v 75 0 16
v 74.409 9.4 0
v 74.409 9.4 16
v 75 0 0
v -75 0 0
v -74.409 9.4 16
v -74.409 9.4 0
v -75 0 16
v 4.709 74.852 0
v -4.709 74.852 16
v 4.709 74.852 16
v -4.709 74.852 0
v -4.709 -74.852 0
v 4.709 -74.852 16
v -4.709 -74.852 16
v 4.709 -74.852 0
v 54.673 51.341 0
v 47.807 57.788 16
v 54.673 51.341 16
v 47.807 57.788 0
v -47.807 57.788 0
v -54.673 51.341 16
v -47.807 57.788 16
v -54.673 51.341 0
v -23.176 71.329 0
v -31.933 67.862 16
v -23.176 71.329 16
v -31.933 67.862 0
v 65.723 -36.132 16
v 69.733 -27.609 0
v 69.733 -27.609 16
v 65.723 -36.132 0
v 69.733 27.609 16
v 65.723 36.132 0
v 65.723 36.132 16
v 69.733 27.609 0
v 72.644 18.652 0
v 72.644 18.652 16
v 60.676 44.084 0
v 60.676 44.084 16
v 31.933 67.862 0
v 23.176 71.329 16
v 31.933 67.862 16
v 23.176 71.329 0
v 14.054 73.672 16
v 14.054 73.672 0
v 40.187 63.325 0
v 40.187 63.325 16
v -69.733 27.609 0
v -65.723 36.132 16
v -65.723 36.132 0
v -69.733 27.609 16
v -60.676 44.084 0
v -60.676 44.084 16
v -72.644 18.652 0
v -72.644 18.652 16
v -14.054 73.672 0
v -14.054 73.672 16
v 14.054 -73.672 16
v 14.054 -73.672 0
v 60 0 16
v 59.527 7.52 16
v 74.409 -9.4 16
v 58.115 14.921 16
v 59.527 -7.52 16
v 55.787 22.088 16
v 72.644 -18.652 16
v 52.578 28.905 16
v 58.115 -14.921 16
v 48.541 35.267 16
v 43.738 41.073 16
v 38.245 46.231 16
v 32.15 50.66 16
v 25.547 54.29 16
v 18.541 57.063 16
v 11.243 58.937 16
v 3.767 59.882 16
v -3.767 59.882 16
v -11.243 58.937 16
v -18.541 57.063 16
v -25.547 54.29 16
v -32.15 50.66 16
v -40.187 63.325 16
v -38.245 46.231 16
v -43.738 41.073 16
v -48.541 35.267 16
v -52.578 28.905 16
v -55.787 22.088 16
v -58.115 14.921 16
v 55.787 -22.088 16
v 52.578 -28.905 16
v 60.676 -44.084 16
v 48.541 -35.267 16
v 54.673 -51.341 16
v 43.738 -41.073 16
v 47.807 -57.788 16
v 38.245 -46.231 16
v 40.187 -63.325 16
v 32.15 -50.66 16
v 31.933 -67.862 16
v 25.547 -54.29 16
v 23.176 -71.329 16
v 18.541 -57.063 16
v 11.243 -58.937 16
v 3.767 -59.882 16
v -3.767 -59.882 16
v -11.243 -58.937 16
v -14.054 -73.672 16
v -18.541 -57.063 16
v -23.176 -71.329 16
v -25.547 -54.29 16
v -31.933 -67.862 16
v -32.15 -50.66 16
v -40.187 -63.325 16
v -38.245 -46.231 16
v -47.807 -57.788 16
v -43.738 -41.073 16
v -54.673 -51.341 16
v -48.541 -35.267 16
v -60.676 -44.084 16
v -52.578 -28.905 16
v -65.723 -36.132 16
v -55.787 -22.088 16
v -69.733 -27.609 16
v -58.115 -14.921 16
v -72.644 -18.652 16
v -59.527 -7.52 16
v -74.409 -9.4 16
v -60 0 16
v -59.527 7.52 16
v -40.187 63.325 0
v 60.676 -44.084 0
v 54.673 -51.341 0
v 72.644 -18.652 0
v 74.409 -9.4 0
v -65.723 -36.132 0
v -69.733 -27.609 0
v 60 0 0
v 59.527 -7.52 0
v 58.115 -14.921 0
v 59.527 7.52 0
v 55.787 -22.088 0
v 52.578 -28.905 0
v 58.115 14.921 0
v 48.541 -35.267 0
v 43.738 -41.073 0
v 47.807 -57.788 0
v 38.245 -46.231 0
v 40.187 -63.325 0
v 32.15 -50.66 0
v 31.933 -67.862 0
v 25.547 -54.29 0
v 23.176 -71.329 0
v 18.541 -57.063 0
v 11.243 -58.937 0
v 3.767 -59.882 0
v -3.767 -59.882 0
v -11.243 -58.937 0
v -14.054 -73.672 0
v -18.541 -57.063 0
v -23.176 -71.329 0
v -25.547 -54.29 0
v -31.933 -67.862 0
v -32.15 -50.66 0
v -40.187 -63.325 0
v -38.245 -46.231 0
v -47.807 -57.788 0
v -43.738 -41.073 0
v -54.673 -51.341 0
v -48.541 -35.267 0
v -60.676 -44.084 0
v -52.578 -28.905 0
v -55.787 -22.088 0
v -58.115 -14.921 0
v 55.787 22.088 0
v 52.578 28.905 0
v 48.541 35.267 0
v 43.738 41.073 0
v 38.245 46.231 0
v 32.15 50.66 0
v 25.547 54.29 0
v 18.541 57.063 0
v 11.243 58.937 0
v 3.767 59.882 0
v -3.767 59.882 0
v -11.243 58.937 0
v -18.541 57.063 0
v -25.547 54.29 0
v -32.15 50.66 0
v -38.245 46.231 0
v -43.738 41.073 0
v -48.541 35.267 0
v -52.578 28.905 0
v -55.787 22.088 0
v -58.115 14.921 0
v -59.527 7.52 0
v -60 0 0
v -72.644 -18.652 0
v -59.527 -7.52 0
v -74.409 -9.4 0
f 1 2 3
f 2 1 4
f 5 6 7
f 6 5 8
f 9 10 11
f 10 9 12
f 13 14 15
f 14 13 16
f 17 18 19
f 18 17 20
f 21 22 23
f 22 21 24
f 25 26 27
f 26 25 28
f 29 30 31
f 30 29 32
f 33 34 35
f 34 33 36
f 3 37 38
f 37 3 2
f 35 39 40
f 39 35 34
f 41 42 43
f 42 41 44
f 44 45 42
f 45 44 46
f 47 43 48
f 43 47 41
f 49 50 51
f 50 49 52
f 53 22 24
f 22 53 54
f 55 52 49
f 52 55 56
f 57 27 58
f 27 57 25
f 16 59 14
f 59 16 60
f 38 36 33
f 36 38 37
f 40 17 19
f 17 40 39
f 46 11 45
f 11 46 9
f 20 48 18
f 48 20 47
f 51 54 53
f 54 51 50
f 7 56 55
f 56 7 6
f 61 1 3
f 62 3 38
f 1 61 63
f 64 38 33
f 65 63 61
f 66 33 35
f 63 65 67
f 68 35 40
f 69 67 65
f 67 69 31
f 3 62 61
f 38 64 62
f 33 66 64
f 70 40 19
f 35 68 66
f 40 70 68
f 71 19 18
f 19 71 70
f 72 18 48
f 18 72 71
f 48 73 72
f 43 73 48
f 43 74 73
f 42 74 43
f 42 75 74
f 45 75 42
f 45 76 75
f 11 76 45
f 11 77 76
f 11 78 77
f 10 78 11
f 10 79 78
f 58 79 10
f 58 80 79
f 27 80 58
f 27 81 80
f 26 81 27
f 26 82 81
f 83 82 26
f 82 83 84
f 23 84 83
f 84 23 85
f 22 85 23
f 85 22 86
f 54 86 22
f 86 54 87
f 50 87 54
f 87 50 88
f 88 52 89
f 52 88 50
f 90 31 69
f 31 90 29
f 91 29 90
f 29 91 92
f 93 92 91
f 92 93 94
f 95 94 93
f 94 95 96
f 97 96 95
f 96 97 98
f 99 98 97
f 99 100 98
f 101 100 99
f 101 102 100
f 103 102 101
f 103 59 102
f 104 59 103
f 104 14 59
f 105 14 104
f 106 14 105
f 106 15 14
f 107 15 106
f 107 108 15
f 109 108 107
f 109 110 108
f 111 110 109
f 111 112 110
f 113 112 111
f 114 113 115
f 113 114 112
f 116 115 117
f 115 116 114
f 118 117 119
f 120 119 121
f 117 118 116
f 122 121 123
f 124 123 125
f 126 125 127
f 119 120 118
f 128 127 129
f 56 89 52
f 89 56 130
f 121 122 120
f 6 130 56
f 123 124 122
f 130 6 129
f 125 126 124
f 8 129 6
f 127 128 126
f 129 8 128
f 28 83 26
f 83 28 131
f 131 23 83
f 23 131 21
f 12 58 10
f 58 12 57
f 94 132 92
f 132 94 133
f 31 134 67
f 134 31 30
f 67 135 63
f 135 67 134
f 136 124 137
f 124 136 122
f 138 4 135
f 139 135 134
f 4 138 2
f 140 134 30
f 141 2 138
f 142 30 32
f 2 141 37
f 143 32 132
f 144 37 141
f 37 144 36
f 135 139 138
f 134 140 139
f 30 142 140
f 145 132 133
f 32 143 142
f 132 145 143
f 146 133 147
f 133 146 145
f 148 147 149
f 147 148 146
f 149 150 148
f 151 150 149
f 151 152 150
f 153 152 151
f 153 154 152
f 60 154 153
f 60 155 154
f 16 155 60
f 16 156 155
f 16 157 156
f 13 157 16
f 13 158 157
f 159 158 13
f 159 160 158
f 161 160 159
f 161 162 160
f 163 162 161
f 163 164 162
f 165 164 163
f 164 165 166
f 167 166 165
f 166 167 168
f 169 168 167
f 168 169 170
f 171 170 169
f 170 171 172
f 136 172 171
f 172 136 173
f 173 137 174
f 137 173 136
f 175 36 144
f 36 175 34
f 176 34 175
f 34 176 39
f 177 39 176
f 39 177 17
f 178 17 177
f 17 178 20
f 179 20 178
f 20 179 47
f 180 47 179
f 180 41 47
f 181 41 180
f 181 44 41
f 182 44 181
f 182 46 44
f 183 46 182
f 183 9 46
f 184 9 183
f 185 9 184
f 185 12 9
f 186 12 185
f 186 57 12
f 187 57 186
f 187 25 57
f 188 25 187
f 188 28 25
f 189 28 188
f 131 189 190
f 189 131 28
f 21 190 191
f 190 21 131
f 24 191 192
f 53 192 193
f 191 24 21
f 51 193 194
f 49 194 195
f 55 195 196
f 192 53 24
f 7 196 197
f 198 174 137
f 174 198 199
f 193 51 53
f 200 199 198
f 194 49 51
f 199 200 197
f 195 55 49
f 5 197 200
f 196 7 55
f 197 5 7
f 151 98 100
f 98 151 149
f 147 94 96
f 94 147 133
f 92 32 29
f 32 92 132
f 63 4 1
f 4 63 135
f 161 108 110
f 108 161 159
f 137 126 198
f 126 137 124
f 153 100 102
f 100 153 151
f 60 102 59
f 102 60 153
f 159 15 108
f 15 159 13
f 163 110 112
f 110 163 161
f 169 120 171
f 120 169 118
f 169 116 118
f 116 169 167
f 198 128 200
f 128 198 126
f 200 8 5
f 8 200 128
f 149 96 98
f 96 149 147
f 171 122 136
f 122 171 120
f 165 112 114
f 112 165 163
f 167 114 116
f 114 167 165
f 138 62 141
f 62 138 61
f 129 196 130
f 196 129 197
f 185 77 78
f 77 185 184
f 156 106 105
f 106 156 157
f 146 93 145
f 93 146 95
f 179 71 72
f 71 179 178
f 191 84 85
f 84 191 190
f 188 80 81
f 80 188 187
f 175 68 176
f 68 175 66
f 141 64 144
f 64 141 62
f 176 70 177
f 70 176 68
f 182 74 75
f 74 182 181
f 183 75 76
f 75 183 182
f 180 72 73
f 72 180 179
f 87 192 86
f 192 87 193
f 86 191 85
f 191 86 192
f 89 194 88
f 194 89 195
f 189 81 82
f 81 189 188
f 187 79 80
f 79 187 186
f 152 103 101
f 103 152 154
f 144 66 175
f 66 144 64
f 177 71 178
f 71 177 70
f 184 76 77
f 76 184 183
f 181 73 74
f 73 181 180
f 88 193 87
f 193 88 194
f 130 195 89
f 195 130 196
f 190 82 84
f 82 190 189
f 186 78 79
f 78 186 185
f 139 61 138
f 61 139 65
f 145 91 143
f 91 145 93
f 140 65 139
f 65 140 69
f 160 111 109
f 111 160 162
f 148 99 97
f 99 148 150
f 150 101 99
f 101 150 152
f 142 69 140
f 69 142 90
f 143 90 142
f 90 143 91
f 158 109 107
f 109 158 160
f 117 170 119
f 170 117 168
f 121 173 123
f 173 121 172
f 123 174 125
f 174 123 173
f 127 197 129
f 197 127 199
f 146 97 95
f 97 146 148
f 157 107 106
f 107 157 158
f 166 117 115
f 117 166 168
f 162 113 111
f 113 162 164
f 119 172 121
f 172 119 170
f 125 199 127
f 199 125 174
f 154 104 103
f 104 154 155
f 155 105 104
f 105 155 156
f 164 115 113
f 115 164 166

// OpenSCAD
$fn = 50;


difference() {
	union() {
		translate(v = [0, 0, 0]) {
			rotate(a = [0, 0, 0]) {
				cylinder(h = 16, r = 75.0000000000);
			}
		}
	}
	union() {
		translate(v = [0, 0, 0]) {
			rotate(a = [0, 0, 0]) {
				cylinder(h = 16, r = 60.0000000000);
			}
		}
	}
}
